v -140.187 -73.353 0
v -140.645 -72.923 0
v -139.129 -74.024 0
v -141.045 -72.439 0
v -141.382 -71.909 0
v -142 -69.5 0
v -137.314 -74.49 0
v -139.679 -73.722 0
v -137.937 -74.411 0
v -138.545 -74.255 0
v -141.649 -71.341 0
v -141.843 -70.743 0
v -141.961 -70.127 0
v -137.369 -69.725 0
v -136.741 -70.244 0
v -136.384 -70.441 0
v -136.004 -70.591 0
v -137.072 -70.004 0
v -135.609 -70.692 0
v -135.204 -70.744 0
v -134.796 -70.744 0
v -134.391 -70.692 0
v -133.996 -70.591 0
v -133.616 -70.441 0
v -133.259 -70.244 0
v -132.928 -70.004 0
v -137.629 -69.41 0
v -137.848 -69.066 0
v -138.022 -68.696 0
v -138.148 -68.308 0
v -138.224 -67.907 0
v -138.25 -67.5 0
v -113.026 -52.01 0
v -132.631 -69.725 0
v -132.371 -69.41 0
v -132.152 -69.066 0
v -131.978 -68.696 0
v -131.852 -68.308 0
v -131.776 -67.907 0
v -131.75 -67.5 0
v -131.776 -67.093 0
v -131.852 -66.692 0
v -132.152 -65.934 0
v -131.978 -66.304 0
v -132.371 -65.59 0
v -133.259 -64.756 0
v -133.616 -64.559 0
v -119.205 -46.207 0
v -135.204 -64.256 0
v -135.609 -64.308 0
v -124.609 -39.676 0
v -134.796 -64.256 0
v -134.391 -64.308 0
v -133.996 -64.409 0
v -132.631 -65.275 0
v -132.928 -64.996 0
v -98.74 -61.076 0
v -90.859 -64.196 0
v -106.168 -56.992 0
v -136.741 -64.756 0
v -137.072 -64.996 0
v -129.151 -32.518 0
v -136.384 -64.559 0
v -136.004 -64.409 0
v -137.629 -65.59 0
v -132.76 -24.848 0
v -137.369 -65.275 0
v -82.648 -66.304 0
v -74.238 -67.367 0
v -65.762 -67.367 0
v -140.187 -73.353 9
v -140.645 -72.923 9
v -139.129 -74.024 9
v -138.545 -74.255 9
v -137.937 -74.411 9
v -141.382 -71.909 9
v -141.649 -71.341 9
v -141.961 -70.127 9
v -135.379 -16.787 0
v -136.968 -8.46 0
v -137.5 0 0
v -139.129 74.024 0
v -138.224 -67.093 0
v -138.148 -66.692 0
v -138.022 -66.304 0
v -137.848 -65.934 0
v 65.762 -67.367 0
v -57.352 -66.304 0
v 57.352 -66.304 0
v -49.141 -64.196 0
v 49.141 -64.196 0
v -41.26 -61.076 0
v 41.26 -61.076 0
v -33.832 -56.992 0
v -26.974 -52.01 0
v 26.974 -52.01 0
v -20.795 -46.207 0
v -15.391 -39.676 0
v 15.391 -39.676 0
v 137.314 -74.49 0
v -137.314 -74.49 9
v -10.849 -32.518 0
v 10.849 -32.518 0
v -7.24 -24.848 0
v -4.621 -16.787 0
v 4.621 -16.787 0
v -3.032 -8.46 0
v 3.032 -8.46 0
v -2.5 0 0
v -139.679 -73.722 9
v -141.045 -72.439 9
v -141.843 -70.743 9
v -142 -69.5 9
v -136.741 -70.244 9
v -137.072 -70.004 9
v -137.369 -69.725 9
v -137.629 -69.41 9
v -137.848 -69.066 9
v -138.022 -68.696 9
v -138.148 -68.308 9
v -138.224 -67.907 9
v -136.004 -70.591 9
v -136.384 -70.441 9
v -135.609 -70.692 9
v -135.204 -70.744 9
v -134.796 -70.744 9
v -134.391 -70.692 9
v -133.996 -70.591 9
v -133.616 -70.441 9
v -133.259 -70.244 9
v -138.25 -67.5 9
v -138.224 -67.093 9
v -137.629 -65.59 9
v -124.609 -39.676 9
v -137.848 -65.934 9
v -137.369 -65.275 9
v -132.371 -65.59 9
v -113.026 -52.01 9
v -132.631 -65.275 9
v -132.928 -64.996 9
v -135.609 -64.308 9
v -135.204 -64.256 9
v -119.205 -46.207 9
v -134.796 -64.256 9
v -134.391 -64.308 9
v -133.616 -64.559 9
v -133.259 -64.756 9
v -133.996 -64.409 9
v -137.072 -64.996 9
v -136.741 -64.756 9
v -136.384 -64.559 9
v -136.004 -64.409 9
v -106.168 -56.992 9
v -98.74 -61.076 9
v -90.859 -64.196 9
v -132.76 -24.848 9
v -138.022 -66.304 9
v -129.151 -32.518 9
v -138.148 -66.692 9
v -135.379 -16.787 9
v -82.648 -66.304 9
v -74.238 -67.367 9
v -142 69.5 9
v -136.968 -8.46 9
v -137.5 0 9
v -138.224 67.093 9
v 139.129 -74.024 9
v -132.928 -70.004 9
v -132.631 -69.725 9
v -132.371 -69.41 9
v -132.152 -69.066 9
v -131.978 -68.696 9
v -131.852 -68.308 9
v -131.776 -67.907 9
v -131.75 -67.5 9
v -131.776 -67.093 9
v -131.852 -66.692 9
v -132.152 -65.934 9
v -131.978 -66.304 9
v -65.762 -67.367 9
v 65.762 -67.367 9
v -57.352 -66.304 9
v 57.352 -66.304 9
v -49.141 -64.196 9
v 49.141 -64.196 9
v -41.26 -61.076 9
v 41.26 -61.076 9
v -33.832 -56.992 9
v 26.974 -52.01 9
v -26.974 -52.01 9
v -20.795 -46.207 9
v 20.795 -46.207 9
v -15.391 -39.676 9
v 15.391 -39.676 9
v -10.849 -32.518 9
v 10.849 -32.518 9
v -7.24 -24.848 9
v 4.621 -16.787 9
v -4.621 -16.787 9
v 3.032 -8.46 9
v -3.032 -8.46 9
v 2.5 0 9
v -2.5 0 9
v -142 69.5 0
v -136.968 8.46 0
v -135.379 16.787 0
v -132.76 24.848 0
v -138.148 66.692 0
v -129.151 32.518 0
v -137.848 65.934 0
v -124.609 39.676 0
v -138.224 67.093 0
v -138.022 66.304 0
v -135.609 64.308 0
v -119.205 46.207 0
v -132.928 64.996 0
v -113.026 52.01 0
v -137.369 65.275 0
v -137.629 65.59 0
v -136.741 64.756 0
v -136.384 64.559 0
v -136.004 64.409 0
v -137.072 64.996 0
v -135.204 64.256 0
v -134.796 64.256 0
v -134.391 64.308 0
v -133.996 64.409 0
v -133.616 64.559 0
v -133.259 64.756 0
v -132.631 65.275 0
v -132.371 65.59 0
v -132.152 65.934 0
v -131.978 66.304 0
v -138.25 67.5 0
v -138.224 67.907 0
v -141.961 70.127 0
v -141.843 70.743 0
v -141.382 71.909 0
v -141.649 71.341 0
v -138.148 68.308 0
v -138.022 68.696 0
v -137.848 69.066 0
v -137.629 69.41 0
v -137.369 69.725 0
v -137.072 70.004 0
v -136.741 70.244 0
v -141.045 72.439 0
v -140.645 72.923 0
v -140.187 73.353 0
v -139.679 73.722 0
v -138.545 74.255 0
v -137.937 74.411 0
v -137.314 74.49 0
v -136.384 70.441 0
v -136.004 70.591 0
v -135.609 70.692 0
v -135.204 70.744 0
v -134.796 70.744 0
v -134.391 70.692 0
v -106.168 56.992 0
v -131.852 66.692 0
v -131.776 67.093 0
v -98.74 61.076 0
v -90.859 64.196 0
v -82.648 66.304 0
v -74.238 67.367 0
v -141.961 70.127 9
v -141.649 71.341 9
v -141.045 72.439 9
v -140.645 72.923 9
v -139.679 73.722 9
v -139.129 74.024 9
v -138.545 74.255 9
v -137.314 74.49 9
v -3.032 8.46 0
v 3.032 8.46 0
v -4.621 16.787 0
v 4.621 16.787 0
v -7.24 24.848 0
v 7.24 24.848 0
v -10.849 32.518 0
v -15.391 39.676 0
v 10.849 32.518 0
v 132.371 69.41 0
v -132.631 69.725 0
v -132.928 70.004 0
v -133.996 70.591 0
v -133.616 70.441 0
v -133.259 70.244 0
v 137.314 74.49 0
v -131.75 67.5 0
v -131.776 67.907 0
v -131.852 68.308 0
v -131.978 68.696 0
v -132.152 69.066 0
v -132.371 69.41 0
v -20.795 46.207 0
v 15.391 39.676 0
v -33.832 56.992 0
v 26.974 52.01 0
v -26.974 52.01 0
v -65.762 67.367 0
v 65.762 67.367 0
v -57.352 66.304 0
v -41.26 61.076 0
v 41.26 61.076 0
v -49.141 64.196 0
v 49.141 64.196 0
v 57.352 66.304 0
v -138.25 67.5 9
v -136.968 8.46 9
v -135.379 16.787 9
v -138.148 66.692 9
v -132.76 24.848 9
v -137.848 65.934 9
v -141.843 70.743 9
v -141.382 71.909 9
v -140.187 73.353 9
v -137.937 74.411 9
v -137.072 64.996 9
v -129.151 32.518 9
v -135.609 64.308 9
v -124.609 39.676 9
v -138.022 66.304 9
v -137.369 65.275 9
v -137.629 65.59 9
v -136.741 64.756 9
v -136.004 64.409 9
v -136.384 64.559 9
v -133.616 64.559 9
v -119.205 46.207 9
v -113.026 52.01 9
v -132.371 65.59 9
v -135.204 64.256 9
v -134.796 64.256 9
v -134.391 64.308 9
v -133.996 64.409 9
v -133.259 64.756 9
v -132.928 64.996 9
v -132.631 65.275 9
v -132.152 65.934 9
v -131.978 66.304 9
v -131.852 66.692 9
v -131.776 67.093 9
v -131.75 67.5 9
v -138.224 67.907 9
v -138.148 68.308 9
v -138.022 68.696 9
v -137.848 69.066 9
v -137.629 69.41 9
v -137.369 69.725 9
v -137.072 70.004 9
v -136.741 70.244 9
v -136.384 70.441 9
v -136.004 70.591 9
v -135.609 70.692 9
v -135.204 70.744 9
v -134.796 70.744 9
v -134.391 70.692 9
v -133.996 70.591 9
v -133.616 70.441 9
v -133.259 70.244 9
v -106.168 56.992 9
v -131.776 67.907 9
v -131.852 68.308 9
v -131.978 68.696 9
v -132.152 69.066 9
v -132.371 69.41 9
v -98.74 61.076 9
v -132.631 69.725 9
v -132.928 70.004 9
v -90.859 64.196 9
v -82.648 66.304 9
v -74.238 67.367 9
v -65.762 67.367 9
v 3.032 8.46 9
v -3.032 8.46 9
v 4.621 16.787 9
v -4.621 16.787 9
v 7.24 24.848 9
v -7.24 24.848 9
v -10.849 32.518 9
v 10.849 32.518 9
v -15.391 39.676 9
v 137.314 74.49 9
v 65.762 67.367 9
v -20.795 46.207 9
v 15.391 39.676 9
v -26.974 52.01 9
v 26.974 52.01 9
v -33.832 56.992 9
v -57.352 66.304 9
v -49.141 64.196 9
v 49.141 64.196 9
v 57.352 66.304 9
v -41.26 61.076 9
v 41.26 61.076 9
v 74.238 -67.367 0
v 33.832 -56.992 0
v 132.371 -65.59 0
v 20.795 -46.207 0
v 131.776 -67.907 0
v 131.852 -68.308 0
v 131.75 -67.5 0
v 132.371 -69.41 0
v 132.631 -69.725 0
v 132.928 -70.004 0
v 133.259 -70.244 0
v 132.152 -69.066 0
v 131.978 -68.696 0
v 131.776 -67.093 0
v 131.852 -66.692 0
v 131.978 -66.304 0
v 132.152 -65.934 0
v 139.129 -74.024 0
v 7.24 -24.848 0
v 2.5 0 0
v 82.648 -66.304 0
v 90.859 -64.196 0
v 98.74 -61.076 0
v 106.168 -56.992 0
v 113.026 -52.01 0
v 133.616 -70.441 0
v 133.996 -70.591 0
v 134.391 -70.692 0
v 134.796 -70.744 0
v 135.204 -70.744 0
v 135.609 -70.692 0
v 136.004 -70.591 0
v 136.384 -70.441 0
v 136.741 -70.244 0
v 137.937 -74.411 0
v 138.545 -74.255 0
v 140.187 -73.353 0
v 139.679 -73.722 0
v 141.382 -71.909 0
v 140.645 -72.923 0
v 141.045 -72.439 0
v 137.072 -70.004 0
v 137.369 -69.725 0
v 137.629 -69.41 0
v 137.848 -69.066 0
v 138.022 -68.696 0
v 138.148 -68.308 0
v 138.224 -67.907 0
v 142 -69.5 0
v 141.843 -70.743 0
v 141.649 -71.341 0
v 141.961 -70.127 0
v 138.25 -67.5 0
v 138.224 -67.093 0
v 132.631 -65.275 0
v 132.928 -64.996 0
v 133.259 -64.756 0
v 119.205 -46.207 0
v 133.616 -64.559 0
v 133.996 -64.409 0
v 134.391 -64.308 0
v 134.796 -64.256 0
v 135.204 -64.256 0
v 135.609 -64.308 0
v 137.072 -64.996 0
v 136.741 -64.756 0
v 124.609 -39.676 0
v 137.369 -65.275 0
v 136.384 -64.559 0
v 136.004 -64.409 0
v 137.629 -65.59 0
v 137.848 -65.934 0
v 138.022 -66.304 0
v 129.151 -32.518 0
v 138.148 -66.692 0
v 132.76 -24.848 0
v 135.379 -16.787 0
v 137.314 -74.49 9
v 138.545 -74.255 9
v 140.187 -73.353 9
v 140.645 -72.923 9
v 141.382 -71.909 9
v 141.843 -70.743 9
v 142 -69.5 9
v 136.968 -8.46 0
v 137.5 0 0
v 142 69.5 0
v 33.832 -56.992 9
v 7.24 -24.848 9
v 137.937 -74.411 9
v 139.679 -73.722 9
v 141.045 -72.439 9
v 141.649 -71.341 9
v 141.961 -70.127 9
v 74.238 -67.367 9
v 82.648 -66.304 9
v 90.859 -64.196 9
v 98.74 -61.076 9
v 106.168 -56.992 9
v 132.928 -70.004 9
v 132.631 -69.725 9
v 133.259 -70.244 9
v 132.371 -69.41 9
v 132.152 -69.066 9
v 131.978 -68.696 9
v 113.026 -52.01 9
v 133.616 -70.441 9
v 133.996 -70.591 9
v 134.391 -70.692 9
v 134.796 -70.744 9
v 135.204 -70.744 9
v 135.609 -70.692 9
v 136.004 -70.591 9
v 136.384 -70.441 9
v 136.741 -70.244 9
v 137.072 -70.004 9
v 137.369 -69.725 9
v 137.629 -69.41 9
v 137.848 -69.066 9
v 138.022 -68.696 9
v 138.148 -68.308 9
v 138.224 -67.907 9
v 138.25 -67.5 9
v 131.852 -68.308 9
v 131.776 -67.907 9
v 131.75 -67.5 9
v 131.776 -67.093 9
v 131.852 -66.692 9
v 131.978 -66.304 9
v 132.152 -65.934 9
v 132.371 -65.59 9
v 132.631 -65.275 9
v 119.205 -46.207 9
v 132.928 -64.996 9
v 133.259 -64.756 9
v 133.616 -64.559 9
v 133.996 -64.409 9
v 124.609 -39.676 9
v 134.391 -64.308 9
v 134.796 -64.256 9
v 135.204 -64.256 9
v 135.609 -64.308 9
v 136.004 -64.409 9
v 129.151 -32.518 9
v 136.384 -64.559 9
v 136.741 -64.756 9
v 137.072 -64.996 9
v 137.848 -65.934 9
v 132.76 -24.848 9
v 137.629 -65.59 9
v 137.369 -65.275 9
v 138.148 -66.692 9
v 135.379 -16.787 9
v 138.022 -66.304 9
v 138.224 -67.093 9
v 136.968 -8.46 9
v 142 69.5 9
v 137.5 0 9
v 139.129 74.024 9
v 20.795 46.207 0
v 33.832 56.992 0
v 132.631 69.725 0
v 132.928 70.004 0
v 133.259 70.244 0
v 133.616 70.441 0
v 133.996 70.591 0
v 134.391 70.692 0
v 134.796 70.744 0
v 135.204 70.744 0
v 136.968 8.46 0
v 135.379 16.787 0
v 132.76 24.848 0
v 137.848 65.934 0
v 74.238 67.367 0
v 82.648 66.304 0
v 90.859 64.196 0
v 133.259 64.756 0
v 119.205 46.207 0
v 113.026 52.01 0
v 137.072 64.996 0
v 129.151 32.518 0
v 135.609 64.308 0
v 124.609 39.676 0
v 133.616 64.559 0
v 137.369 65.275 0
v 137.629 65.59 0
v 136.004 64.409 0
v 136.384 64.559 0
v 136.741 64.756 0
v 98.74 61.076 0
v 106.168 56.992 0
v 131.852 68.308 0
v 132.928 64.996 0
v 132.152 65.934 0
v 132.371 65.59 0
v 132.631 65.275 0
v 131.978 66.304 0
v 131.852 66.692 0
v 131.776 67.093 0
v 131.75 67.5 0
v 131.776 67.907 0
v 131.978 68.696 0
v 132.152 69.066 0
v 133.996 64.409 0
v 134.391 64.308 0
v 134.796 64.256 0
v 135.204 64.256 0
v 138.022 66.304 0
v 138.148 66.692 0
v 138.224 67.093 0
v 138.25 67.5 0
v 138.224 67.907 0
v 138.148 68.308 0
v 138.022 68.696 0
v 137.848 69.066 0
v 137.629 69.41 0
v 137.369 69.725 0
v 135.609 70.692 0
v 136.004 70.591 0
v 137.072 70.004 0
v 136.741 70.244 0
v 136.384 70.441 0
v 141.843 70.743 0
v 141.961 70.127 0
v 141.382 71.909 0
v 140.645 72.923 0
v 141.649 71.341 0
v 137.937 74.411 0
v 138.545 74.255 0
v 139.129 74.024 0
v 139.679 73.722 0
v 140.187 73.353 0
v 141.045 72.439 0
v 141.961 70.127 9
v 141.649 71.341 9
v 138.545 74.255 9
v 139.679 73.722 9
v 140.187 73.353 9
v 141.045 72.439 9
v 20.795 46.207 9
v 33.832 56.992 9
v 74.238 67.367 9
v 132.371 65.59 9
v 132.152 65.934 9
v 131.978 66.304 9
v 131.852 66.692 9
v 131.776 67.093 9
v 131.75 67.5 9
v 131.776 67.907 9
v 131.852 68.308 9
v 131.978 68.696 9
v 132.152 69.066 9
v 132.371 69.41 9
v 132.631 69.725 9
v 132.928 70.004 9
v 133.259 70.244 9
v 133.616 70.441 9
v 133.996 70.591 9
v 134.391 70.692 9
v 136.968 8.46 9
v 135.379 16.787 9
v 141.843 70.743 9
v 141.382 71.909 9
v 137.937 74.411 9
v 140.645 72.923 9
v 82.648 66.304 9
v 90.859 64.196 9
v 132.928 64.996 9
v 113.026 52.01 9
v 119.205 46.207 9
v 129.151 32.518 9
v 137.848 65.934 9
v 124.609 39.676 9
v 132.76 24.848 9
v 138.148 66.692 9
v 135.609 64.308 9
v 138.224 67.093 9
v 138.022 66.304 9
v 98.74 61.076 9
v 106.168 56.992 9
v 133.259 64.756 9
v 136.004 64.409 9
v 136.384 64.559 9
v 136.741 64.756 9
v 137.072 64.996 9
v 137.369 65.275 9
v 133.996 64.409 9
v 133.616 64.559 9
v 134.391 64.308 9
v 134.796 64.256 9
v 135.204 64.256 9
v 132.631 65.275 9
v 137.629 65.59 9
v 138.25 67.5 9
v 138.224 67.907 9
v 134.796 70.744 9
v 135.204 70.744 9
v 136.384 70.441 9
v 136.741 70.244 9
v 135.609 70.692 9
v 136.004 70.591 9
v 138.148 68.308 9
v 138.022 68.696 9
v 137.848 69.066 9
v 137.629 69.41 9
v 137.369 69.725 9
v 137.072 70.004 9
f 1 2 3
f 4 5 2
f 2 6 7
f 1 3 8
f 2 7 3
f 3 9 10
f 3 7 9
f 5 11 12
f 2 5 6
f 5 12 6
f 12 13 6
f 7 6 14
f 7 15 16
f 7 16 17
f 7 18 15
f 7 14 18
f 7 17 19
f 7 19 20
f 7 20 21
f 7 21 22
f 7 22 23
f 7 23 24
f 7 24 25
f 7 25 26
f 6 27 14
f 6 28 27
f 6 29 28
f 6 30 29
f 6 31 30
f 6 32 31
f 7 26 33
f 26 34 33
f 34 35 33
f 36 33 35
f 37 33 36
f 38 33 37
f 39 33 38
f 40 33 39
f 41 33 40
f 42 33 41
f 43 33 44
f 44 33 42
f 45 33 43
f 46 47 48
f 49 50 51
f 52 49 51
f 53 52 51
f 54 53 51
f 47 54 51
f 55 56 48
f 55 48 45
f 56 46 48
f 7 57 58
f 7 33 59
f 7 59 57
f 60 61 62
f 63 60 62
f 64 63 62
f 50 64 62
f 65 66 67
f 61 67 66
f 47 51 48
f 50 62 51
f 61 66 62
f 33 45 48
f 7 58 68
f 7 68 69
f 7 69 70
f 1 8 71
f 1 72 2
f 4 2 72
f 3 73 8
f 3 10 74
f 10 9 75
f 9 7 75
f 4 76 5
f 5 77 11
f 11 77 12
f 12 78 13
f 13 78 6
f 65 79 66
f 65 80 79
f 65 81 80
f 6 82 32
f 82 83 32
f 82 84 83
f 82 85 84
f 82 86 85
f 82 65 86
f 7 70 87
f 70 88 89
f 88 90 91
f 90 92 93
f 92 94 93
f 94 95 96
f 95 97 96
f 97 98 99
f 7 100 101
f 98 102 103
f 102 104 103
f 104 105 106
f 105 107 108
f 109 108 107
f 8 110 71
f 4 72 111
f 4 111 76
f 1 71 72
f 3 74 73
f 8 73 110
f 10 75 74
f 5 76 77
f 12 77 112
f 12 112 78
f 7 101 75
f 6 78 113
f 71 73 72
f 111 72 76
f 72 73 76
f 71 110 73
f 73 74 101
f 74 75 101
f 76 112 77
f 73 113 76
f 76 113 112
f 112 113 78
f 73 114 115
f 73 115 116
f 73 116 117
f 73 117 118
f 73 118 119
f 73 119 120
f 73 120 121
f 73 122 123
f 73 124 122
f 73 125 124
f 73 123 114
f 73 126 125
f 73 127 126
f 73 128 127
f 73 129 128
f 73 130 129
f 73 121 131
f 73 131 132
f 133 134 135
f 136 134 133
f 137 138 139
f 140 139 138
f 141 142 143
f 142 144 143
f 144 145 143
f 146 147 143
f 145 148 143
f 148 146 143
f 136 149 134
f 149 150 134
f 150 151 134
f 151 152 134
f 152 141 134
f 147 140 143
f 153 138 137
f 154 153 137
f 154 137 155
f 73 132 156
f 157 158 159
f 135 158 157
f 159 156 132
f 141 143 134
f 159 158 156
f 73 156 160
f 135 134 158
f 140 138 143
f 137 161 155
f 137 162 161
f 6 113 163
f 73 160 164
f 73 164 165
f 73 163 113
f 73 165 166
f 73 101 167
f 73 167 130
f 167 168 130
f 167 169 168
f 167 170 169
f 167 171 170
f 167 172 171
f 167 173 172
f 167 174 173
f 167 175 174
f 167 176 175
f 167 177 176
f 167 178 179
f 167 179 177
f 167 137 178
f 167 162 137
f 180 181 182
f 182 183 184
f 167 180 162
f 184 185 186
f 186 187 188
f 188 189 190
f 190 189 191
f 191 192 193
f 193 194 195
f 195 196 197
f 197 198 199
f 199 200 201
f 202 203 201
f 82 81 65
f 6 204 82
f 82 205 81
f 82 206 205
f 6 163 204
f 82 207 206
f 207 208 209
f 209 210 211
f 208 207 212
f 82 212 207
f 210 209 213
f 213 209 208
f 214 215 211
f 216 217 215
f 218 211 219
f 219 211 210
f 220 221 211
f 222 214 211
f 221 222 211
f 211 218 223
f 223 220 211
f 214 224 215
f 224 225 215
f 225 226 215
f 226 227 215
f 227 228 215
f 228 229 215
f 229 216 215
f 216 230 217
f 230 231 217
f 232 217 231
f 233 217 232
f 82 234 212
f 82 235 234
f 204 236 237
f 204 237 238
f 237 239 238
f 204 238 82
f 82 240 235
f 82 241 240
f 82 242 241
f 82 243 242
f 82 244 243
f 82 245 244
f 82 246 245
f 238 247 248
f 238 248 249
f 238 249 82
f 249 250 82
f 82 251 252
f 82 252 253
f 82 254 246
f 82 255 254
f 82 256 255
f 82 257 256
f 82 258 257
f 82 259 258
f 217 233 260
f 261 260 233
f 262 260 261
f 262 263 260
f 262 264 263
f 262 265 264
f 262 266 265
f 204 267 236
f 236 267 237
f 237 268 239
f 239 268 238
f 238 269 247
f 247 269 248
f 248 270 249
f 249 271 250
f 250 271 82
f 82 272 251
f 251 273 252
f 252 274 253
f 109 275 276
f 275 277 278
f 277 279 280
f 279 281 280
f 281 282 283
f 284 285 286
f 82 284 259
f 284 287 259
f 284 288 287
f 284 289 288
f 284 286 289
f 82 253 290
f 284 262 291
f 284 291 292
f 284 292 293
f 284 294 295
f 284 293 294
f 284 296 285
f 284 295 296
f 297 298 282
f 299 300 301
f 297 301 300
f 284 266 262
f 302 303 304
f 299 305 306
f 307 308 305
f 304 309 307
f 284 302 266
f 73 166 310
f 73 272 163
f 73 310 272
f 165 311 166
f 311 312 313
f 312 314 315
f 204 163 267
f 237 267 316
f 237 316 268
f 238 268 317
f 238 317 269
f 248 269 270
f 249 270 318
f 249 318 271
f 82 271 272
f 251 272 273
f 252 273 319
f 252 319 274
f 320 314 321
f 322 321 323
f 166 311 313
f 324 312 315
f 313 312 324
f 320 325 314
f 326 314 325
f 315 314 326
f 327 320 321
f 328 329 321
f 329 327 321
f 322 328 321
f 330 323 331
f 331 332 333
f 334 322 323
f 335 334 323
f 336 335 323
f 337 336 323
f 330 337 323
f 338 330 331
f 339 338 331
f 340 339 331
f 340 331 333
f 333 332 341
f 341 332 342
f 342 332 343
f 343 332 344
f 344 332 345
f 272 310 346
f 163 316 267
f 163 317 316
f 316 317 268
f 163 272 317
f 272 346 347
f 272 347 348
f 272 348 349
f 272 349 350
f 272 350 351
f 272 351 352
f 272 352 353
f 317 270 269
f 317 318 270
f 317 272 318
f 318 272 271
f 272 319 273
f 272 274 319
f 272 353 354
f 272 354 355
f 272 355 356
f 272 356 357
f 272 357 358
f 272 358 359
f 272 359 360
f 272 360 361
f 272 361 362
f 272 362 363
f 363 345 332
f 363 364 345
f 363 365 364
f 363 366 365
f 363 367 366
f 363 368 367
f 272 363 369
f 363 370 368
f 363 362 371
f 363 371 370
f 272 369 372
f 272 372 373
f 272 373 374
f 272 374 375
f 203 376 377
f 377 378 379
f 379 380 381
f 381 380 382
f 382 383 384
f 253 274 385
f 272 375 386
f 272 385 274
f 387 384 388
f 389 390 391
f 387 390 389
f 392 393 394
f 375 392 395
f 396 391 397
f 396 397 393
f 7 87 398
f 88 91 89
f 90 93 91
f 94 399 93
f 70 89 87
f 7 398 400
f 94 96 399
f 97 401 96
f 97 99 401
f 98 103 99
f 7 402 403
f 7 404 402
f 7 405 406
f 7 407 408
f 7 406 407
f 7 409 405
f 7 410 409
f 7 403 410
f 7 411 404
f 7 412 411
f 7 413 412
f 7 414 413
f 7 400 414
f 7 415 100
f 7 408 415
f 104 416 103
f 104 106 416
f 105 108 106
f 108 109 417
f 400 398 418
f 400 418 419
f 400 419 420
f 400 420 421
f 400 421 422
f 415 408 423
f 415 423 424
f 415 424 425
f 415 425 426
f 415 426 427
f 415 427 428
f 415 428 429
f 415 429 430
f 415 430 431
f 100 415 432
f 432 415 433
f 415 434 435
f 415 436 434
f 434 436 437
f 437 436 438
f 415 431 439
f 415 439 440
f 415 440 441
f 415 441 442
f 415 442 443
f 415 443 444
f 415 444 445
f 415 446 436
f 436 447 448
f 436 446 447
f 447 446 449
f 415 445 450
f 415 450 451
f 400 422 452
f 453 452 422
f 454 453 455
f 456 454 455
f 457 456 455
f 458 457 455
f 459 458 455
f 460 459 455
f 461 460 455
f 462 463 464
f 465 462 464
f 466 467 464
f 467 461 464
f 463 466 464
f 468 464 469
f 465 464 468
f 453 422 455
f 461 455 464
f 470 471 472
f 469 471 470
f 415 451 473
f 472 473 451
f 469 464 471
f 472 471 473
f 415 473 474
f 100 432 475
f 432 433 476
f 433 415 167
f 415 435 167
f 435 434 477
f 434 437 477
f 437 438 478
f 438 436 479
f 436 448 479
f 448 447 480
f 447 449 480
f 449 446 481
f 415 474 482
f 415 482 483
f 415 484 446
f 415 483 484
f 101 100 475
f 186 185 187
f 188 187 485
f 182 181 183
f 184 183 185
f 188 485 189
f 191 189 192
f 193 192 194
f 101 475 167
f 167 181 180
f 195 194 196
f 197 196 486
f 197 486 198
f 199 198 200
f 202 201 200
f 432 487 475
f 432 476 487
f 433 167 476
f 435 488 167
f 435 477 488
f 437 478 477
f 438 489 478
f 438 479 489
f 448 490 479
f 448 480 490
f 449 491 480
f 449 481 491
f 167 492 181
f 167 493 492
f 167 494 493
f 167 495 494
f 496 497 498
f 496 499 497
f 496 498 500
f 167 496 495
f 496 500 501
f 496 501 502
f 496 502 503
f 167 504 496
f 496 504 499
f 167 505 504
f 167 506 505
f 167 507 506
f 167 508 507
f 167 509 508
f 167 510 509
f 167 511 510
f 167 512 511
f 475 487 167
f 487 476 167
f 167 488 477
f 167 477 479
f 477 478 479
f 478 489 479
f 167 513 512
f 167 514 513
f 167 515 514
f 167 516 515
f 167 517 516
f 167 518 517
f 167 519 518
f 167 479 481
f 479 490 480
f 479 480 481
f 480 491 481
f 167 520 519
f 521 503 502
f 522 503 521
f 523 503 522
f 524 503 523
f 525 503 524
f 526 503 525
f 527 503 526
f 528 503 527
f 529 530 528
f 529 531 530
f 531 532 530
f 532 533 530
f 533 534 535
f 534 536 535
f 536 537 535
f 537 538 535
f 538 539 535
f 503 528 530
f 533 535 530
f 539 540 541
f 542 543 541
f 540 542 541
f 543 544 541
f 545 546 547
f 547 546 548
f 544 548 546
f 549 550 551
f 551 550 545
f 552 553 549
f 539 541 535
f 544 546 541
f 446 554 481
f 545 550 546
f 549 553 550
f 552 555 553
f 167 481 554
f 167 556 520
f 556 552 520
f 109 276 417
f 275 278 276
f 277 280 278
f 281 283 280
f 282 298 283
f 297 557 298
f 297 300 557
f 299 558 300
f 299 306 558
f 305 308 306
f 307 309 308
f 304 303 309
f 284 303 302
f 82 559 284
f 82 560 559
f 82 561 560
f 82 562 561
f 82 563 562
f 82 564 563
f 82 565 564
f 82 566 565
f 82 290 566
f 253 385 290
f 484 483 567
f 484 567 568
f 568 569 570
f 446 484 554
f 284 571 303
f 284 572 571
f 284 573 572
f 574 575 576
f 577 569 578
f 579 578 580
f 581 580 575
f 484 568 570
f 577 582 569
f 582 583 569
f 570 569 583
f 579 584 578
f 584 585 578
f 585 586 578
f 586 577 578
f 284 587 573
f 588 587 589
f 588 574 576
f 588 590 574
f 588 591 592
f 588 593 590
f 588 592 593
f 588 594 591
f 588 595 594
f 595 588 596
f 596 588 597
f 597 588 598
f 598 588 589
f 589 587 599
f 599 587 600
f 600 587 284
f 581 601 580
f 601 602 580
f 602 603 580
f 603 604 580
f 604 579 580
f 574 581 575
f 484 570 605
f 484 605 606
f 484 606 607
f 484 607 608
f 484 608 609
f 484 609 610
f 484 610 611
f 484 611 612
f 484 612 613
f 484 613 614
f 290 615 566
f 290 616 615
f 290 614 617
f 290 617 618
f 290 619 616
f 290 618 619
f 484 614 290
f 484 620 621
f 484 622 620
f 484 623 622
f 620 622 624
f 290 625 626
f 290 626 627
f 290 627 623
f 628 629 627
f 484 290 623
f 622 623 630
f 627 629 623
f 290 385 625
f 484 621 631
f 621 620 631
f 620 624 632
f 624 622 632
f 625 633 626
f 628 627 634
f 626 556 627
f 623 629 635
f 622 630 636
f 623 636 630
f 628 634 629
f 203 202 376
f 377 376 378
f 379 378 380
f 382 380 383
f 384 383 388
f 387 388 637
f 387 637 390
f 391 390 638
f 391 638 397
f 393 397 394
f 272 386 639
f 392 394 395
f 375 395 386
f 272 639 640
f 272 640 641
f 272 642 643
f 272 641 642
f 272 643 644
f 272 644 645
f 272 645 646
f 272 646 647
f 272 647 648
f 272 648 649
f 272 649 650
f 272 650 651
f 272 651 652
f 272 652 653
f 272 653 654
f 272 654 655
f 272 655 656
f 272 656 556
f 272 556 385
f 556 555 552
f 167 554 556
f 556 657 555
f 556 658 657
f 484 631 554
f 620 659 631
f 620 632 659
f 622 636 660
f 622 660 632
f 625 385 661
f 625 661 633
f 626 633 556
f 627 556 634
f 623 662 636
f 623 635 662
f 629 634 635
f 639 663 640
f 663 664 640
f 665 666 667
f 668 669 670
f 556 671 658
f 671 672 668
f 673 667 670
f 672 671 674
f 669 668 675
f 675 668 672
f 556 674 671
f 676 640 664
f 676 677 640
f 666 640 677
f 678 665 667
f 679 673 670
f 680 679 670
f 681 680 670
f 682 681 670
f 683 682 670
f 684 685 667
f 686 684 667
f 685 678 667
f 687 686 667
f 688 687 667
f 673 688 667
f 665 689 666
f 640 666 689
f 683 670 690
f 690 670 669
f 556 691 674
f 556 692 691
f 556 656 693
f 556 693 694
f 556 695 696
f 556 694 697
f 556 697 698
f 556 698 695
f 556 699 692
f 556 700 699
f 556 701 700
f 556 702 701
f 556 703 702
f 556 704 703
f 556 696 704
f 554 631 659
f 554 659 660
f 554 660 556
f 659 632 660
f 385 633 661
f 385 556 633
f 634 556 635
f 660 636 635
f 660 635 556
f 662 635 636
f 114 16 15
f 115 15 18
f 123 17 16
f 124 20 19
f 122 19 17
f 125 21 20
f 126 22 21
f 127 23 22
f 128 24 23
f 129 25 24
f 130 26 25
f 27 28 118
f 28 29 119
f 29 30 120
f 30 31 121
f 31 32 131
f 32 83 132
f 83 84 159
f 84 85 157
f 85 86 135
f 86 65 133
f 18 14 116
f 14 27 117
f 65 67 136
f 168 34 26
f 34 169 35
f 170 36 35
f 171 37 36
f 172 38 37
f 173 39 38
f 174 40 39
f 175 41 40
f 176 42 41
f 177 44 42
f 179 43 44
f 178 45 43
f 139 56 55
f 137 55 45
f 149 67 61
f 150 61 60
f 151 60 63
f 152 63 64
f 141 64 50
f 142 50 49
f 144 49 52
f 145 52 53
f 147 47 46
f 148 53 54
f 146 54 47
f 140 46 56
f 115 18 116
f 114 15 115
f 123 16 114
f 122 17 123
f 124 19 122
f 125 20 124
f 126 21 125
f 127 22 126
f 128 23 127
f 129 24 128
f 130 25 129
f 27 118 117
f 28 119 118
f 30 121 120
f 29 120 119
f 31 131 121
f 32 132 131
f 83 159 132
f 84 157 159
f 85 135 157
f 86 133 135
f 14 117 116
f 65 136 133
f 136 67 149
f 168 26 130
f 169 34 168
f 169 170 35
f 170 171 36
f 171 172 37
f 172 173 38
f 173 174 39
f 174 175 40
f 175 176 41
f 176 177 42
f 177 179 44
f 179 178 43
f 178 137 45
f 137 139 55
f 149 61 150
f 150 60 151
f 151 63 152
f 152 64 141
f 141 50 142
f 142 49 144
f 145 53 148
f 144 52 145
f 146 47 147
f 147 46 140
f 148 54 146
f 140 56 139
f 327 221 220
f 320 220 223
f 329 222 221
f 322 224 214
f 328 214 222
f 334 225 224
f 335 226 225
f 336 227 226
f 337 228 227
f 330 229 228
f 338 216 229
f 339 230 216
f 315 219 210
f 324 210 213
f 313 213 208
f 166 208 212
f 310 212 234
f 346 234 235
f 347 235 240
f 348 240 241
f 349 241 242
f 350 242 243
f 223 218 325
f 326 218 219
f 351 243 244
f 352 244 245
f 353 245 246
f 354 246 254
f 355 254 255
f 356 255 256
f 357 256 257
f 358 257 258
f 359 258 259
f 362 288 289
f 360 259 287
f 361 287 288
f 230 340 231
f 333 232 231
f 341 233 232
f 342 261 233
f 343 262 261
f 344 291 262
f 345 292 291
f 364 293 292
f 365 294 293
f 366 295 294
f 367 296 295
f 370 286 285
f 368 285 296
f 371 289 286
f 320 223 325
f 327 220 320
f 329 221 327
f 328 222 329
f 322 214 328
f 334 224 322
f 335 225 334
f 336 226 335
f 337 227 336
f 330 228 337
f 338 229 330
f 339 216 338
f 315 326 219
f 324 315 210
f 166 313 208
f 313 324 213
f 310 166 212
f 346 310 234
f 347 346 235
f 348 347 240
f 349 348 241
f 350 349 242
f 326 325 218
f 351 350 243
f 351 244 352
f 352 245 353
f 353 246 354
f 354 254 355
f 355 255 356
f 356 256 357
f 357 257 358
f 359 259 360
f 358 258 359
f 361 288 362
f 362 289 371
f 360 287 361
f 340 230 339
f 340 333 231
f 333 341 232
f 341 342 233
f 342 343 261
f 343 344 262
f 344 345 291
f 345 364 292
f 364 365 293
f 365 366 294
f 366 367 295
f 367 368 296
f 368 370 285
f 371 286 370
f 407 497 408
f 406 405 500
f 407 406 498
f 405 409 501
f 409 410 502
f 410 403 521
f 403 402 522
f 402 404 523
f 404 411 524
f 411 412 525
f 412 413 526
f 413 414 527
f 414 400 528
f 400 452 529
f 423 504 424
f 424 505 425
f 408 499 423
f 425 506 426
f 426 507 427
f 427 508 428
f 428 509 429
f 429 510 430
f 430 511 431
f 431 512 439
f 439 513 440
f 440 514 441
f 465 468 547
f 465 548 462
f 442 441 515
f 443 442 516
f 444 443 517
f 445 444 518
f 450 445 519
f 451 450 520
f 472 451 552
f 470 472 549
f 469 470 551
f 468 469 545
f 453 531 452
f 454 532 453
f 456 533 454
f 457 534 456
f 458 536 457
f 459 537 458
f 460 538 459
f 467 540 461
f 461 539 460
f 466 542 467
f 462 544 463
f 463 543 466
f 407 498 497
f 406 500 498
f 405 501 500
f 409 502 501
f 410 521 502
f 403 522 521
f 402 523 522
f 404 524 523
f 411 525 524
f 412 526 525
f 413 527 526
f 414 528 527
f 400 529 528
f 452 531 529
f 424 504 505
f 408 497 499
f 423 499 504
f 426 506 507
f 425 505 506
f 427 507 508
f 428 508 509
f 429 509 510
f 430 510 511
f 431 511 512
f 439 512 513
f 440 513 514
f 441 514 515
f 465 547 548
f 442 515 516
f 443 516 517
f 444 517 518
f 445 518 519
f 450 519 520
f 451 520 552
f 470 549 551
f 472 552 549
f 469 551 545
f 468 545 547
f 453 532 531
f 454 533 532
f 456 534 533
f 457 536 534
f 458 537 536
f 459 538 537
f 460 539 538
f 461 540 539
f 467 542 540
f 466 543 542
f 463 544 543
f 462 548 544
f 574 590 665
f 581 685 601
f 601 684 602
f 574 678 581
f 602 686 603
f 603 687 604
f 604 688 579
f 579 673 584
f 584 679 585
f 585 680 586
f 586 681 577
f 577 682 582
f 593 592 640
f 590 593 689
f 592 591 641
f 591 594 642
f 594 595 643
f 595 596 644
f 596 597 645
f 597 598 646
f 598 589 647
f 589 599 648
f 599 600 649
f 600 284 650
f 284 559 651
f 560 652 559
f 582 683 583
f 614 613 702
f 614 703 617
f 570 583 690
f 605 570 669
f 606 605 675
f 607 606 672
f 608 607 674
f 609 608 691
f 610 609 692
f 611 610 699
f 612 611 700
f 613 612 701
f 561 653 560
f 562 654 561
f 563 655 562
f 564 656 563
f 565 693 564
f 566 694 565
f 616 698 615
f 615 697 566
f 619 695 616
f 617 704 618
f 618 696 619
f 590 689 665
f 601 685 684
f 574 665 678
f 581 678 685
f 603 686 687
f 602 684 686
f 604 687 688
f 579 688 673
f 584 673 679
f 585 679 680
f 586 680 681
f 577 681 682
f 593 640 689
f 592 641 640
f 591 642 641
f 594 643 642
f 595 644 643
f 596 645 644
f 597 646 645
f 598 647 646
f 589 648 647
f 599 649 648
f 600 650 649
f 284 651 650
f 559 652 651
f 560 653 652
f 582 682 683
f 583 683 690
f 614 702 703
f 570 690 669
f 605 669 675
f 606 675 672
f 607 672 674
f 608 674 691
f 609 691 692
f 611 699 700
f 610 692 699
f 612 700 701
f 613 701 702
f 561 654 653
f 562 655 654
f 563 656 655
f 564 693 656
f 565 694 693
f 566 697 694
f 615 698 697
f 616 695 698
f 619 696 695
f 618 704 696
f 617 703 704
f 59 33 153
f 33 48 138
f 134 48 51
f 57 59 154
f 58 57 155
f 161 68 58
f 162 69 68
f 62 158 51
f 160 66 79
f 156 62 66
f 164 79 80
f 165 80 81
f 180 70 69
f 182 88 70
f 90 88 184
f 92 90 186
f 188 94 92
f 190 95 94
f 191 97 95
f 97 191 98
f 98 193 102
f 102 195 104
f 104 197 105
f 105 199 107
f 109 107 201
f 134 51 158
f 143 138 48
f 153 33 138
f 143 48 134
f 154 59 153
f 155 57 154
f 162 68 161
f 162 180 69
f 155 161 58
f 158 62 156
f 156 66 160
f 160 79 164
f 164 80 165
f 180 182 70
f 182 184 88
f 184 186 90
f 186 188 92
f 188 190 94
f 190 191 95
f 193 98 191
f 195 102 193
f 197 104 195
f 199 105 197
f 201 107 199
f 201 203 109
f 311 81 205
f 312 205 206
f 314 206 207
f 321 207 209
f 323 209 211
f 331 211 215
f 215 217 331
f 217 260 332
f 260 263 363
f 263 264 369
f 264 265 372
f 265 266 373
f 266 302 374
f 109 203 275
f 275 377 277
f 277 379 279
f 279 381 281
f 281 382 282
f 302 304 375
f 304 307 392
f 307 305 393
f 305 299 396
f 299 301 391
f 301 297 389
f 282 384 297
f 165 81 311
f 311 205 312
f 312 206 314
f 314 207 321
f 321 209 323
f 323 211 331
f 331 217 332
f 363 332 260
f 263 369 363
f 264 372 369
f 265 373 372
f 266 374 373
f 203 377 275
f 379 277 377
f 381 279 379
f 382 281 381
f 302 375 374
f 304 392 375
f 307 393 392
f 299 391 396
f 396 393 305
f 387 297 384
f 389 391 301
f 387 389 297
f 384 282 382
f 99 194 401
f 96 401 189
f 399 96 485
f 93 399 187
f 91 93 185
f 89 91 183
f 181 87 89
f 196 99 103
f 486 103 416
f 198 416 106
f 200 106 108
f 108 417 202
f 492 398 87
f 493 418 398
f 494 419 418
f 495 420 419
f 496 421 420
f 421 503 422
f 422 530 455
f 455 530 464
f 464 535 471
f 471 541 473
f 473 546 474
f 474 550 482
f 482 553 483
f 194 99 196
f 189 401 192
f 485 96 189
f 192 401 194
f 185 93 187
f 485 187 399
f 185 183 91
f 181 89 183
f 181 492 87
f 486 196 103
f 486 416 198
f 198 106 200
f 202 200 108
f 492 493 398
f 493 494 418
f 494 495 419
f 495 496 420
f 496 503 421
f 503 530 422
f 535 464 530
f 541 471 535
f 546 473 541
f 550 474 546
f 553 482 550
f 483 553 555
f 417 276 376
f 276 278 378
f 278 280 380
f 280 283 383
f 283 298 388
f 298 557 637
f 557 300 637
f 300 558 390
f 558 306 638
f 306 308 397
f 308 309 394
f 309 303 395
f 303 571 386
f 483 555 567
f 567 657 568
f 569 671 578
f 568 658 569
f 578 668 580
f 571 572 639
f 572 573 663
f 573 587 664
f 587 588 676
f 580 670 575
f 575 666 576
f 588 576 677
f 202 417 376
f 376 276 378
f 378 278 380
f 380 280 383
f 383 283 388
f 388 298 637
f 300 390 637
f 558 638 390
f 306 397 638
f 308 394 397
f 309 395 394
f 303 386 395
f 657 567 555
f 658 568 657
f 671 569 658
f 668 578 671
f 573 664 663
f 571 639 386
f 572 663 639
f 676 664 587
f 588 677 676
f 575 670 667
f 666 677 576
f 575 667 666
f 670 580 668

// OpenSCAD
$fn = 50;

difference() {
	union() {
		hull() {
			translate(v = [-137.0, 69.5, 0]) {
				cylinder(h = 9, r = 5);
			}
			translate(v = [137.0, 69.5, 0]) {
				cylinder(h = 9, r = 5);
			}
			translate(v = [-137.0, -69.5, 0]) {
				cylinder(h = 9, r = 5);
			}
			translate(v = [137.0, -69.5, 0]) {
				cylinder(h = 9, r = 5);
			}
		}
	}
	union() {
		translate(v = [-135.0, -67.5, -100.0]) {
			cylinder(h = 200, r = 3.25);
		}
		translate(v = [-135.0, 67.5, -100.0]) {
			cylinder(h = 200, r = 3.25);
		}
		translate(v = [135.0, -67.5, -100.0]) {
			cylinder(h = 200, r = 3.25);
		}
		translate(v = [135.0, 67.5, -100.0]) {
			cylinder(h = 200, r = 3.25);
		}
		translate(v = [-135.0, -67.5, -100.0]) {
			cylinder(h = 200, r = 1.8);
		}
		translate(v = [-135.0, 67.5, -100.0]) {
			cylinder(h = 200, r = 1.8);
		}
		translate(v = [135.0, -67.5, -100.0]) {
			cylinder(h = 200, r = 1.8);
		}
		translate(v = [135.0, 67.5, -100.0]) {
			cylinder(h = 200, r = 1.8);
		}
		translate(v = [-70.0, 0, 0.0]) {
			cylinder(h = 9, r = 67.5);
		}
		translate(v = [70.0, 0, 0.0]) {
			cylinder(h = 9, r = 67.5);
		}
	}
}
